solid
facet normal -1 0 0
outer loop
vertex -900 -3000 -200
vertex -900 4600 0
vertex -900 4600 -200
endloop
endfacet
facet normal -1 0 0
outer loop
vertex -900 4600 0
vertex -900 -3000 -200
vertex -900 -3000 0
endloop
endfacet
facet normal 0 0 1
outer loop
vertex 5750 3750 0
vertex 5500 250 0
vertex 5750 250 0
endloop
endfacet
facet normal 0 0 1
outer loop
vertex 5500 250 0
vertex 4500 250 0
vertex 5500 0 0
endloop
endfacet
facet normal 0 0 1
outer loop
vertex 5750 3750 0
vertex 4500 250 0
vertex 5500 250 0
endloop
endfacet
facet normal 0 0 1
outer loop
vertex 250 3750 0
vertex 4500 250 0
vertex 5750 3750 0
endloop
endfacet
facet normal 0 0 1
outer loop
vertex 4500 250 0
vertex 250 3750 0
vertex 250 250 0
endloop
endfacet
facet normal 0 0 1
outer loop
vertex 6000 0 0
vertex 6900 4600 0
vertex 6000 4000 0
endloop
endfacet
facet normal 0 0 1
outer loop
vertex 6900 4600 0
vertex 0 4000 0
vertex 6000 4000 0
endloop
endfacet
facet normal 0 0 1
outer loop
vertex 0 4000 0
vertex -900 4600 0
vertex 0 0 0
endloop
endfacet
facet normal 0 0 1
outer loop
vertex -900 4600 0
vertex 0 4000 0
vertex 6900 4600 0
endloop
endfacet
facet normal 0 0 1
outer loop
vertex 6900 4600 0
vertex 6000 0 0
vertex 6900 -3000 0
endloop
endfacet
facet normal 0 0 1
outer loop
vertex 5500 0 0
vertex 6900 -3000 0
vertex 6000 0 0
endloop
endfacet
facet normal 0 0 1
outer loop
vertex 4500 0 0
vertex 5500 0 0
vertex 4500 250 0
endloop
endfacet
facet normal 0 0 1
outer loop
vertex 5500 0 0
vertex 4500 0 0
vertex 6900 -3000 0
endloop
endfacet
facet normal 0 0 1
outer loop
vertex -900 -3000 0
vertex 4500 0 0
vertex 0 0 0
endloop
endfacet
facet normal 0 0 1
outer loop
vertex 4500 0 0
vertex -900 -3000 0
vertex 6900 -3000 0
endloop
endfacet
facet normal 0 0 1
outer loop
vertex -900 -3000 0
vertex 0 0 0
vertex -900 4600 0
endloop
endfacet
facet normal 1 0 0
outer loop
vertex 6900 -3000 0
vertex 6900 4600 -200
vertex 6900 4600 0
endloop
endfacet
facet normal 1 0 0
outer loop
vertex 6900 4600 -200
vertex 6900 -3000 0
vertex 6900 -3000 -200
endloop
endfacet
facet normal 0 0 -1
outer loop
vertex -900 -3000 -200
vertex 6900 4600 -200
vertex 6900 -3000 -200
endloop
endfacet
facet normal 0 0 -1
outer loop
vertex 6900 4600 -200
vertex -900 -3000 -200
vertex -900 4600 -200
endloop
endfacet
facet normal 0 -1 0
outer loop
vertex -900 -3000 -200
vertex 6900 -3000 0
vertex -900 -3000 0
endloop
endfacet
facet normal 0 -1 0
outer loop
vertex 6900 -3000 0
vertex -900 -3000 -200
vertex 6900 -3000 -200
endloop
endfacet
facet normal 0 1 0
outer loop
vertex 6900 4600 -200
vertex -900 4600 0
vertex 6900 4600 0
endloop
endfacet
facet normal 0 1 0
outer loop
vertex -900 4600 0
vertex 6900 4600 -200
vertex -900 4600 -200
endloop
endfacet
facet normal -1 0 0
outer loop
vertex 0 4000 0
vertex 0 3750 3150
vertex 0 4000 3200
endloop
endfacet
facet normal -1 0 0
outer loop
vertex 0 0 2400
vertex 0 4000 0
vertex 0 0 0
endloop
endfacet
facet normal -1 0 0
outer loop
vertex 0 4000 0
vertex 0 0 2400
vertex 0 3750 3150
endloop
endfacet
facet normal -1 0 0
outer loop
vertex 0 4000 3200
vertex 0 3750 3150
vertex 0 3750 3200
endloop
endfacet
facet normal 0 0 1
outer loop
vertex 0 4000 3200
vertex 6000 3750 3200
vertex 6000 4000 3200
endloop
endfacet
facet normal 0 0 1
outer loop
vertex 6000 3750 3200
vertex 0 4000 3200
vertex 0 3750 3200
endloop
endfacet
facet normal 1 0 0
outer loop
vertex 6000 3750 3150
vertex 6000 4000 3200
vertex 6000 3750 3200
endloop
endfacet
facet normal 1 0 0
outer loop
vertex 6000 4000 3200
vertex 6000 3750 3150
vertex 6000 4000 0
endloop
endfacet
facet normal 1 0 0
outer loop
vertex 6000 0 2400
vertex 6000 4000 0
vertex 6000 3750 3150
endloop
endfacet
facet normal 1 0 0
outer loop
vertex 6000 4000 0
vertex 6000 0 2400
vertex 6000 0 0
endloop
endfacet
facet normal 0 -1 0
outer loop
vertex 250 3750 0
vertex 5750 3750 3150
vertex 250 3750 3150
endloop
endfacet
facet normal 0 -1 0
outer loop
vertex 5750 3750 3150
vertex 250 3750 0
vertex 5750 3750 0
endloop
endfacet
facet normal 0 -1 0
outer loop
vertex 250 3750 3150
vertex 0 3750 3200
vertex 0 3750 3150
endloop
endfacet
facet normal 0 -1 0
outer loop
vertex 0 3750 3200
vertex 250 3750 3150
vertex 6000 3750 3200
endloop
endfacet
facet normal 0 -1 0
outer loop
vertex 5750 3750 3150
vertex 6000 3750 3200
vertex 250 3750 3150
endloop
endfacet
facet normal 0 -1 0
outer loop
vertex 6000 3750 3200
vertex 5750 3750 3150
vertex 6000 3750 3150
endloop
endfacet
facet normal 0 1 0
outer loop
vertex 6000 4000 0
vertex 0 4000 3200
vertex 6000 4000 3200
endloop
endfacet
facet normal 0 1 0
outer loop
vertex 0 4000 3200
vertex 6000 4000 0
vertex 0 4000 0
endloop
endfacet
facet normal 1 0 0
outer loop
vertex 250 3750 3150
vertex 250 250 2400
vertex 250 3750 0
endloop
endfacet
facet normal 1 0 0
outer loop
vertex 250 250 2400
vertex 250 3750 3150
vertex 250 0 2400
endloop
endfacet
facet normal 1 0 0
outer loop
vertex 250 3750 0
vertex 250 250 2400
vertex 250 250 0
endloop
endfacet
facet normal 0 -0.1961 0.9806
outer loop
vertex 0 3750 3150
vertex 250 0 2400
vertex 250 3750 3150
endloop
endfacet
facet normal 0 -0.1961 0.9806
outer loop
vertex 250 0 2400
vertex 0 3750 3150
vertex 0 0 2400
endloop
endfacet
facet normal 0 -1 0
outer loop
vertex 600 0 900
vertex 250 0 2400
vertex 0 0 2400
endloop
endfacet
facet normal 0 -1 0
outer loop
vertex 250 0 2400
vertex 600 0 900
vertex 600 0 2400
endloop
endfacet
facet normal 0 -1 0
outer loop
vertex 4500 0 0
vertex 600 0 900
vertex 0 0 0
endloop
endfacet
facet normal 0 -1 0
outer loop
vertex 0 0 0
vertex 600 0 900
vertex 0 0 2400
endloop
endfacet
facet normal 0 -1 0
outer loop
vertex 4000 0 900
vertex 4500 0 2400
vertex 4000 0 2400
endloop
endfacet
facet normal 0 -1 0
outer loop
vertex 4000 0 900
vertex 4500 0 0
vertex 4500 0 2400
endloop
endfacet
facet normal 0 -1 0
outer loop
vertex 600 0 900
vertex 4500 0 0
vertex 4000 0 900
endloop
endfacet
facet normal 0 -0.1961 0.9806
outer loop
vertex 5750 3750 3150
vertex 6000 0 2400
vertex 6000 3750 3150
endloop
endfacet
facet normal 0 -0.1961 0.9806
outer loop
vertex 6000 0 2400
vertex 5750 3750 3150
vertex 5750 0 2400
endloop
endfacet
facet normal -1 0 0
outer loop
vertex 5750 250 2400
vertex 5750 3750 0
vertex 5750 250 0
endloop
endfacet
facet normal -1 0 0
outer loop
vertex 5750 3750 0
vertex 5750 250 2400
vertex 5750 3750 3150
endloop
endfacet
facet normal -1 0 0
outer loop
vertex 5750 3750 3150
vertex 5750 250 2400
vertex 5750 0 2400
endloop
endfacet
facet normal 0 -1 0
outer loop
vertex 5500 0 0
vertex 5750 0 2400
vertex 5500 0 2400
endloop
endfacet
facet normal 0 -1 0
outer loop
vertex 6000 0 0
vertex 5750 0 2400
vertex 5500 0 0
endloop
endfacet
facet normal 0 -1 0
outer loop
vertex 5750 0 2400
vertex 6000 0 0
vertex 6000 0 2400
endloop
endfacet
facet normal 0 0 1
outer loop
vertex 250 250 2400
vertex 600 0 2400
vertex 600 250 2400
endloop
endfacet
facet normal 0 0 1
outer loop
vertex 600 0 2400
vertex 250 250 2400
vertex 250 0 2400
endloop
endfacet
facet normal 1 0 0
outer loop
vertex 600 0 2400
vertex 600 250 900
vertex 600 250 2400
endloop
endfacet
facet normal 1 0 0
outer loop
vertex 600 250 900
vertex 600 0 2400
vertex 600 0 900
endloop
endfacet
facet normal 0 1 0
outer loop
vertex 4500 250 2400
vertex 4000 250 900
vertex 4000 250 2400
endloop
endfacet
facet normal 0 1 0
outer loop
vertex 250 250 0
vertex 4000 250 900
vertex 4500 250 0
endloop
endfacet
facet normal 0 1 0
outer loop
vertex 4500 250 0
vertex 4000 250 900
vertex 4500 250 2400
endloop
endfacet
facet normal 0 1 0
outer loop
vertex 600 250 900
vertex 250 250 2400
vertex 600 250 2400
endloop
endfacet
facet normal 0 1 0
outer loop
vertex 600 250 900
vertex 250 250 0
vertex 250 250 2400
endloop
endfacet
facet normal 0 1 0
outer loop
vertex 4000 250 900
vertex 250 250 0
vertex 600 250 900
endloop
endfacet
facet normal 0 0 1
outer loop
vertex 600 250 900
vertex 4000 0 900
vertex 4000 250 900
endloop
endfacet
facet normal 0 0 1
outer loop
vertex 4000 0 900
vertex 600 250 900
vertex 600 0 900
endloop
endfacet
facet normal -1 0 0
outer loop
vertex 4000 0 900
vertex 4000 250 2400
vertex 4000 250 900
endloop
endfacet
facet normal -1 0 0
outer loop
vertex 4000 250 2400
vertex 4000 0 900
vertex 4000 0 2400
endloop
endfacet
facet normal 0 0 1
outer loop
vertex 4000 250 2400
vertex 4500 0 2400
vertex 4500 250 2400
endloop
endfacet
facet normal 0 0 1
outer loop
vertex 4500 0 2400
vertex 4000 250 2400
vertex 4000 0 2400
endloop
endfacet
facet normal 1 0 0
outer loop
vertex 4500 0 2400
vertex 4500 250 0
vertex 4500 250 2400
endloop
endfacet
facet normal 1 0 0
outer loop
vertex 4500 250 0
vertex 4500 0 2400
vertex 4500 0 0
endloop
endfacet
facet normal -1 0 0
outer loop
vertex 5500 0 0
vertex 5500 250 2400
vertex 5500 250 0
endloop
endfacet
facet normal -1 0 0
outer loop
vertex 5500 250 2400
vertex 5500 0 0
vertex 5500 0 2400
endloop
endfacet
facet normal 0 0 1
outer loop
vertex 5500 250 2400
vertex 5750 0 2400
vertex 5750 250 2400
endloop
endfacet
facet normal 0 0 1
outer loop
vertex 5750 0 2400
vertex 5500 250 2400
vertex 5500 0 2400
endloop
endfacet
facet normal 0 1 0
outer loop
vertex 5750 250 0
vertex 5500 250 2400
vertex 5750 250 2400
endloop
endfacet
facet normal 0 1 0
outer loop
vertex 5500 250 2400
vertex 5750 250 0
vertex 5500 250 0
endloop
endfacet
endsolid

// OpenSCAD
// file: tea_shop_parameters.scad
// =============================================================================
// Tea Shop — SHARED PARAMETERS (Base & Shell)
// -----------------------------------------------------------------------------
// OpenSCAD's native unit is 1 mm, so every value here is the REAL-LIFE size
// in millimetres (1000 mm = 1 m). E.g. building_width = 6000 means 6.0 m.
//
// For MLO / FiveM (which uses metres as 1 unit = 1 m), either:
//   (a) export each STL here and re-import at a scale of 0.001 (mm -> m), or
//   (b) model in metres directly by dividing every value below by 1000.
//
// Tune each value here; every module pulls its size from these variables.
// =============================================================================


// --- building shell / roof (lean-to: TALL back, SHORT front eave) -----------
wall_thickness    = 250;   // wall panel thickness                      (0.25 m)
building_width    = 6000;  // X extent, left wall -> right wall          (6.00 m)
building_depth    = 4000;  // Y extent, front eave -> back wall          (4.00 m)
back_height       = 3200;  // full wall height at the BACK (tall side)   (3.20 m)
front_eave_height = 2400;  // wall height at the FRONT eave (short side) (2.40 m)

// --- front wall openings (service window + door), measured along X ----------
left_pier_width   = 600;   // solid pier left of the service window      (0.60 m)
window_width      = 3400;  // service window opening width — made WIDE   (3.40 m)
mid_pier_width    = 500;   // solid pier between window and door         (0.50 m)
door_width        = 1000;  // door opening width                         (1.00 m)
sill_height       = 900;   // knee-wall (sill) height beneath the window (0.90 m)

// --- base slab / plinth ------------------------------------------------------
base_thickness    = 200;   // vertical thickness of the ground plinth    (0.20 m)
base_side_margin  = 900;   // slab overhang beyond left/right walls      (0.90 m)
base_back_margin  = 600;   // slab overhang behind the back wall         (0.60 m)
base_front_margin = 3000;  // extra slab in FRONT = porch/patio (pergola)(3.00 m)


// -----------------------------------------------------------------------------
// DERIVED DIMENSIONS (do not edit — computed from the values above)
// -----------------------------------------------------------------------------

// front-wall pier chain, left -> right, must sum exactly to building_width
window_left      = left_pier_width;                    // X where the window starts
window_right     = window_left + window_width;         // X where the window ends
door_left        = window_right + mid_pier_width;      // X where the door starts
door_right       = door_left + door_width;             // X where the door ends
right_pier_width = building_width - door_right;        // fills the rest to the corner

// window opening rises from the top of the sill up to the front eave line
window_open_height = front_eave_height - sill_height;
// file: tea_shop_modules.scad
// =============================================================================
// Tea Shop — MODULE LIBRARY (Base & Shell)
// -----------------------------------------------------------------------------
// This file only DEFINES the parts (and the assemble() preview). It instantiates
// NO geometry on its own, so it can be include'd by the individual export files
// (part_*.scad) and by tea_shop_assemble.scad without producing duplicates.
//
// GLOBAL COORDINATE SYSTEM (shared by every piece — no per-part centering):
//   +X -> left -> right  (building WIDTH along X, left wall at X=0)
//   +Y -> front -> back  (building DEPTH along Y, front eave at Y=0)
//   +Z -> up             (ground/porch surface = Z=0)
//
//   Building footprint = [0..building_width] x [0..building_depth].
//   Roof = single-pitch lean-to: TALL at BACK (Y=depth), SHORT at FRONT (Y=0).
// =============================================================================

include <tea_shop_parameters.scad>;


// -----------------------------------------------------------------------------
// _trapezoid_prism — shared core for the two side walls. It draws the side
// elevation (depth x height) as a 2D polygon, then linear_extrude +
// rotate([0,-90,0]) stand it up so its thickness runs along X. The front edge
// (Y=0) is the short eave height and the back edge (Y=depth) is the full back
// height, so the top edge automatically matches the roof pitch. Result
// occupies X = [0 .. wall_thickness].
// -----------------------------------------------------------------------------
module _trapezoid_prism() {
    translate([wall_thickness, 0, 0])
        rotate([0, -90, 0])
            linear_extrude(height = wall_thickness)
                polygon(points = [
                    [0,                 0],               // front, ground
                    [0,                 building_depth],  // back,  ground
                    [back_height,       building_depth],  // back,  top (tall)
                    [front_eave_height, 0]                // front, top (eave)
                ]);
}


// =============================================================================
// base_slab — flat ground plinth. Extends past the building on all sides, with
// a generous margin up front to form the porch/patio where the bench / stools
// sit under the pergola. Top surface is the datum Z=0.
// =============================================================================
module base_slab() {
    translate([-base_side_margin, -base_front_margin, -base_thickness])
        cube([
            building_width + 2 * base_side_margin,                 // X
            building_depth + base_front_margin + base_back_margin, // Y
            base_thickness                                          // Z
        ]);
}


// =============================================================================
// back_wall — solid rectangular panel, full building width and FULL height
// (the tall side of the lean-to). Sits at the back edge of the footprint.
// =============================================================================
module back_wall() {
    translate([0, building_depth - wall_thickness, 0])
        cube([building_width, wall_thickness, back_height]);
}


// =============================================================================
// left_side_wall — trapezoidal panel, TALL at the back edge and SHORT at the
// front edge, matching the roof slope. Occupies X = [0 .. wall_thickness].
// =============================================================================
module left_side_wall() {
    _trapezoid_prism();
}


// =============================================================================
// right_side_wall — mirror image of the left wall (identical trapezoid cross
// section, since both walls slope down toward the FRONT eave), placed at the
// right edge X = [building_width - wall_thickness .. building_width].
// Plain — no openings.
// =============================================================================
module right_side_wall() {
    translate([building_width - wall_thickness, 0, 0])
        _trapezoid_prism();
}


// =============================================================================
// FRONT WALL — broken into solid piers + a knee-wall (sill), leaving a service
// window opening and a door opening. Every front piece tops out at the front
// eave height (the horizontal line where the roof meets the front wall).
//
//   |<- left ->|<--- window --->|<- mid ->|<-- door -->|<- right ->|
//   |   pier   |    (opening)   |   pier  |  (opening)  |   pier   |
//   |          |   [sill below] |         |             |          |
// =============================================================================

// front_wall_left_pier — solid pier left of the service window, ground to eave.
module front_wall_left_pier() {
    translate([0, 0, 0])
        cube([left_pier_width, wall_thickness, front_eave_height]);
}


// front_wall_sill — the low knee-wall beneath the service window opening.
// The window opening sits above it.
// TODO: counter + window frame modules slot in above this sill (later group).
module front_wall_sill() {
    translate([window_left, 0, 0])
        cube([window_width, wall_thickness, sill_height]);
}


// front_wall_mid_pier — solid pier between the window and the door, full height.
module front_wall_mid_pier() {
    translate([window_right, 0, 0])
        cube([mid_pier_width, wall_thickness, front_eave_height]);
}


// front_wall_right_pier — solid pier right of the door, out to the front corner.
// Width is derived so the pier chain always ends flush with the right corner.
module front_wall_right_pier() {
    translate([door_right, 0, 0])
        cube([right_pier_width, wall_thickness, front_eave_height]);
}


// -----------------------------------------------------------------------------
// OPENING ANNOTATIONS (for reference — these are EMPTY volumes in the shell):
//
//   Service window opening:
//     X = [window_left .. window_right], Z = [sill_height .. front_eave_height]
//     TODO: window frame + service counter modules slot in here (later group).
//
//   Door opening:
//     X = [door_left .. door_right], Z = [0 .. front_eave_height] (full height)
//     TODO: door / door-frame module slots in here (later group).
// -----------------------------------------------------------------------------


// =============================================================================
// assemble — visual verification ONLY (not for export). Shows every piece in
// the shared coordinate system, each in its own colour, so the assembled shell
// can be checked against the reference before exporting individual STLs.
// =============================================================================
module assemble() {
    color("LightGray")  base_slab();

    color("SkyBlue")    back_wall();
    color("Orange")     left_side_wall();
    color("Orange")     right_side_wall();

    color("FireBrick")  front_wall_left_pier();
    color("Peru")       front_wall_sill();
    color("FireBrick")  front_wall_mid_pier();
    color("FireBrick")  front_wall_right_pier();
}
// main file
// =============================================================================
// tea_shop_assemble.scad — ASSEMBLED PREVIEW (visual verification only).
// Shows every Base & Shell piece together in its own colour. This file is NOT
// for export — use the part_*.scad files to export each piece as its own STL.
// =============================================================================

include <tea_shop_modules.scad>;

assemble();
